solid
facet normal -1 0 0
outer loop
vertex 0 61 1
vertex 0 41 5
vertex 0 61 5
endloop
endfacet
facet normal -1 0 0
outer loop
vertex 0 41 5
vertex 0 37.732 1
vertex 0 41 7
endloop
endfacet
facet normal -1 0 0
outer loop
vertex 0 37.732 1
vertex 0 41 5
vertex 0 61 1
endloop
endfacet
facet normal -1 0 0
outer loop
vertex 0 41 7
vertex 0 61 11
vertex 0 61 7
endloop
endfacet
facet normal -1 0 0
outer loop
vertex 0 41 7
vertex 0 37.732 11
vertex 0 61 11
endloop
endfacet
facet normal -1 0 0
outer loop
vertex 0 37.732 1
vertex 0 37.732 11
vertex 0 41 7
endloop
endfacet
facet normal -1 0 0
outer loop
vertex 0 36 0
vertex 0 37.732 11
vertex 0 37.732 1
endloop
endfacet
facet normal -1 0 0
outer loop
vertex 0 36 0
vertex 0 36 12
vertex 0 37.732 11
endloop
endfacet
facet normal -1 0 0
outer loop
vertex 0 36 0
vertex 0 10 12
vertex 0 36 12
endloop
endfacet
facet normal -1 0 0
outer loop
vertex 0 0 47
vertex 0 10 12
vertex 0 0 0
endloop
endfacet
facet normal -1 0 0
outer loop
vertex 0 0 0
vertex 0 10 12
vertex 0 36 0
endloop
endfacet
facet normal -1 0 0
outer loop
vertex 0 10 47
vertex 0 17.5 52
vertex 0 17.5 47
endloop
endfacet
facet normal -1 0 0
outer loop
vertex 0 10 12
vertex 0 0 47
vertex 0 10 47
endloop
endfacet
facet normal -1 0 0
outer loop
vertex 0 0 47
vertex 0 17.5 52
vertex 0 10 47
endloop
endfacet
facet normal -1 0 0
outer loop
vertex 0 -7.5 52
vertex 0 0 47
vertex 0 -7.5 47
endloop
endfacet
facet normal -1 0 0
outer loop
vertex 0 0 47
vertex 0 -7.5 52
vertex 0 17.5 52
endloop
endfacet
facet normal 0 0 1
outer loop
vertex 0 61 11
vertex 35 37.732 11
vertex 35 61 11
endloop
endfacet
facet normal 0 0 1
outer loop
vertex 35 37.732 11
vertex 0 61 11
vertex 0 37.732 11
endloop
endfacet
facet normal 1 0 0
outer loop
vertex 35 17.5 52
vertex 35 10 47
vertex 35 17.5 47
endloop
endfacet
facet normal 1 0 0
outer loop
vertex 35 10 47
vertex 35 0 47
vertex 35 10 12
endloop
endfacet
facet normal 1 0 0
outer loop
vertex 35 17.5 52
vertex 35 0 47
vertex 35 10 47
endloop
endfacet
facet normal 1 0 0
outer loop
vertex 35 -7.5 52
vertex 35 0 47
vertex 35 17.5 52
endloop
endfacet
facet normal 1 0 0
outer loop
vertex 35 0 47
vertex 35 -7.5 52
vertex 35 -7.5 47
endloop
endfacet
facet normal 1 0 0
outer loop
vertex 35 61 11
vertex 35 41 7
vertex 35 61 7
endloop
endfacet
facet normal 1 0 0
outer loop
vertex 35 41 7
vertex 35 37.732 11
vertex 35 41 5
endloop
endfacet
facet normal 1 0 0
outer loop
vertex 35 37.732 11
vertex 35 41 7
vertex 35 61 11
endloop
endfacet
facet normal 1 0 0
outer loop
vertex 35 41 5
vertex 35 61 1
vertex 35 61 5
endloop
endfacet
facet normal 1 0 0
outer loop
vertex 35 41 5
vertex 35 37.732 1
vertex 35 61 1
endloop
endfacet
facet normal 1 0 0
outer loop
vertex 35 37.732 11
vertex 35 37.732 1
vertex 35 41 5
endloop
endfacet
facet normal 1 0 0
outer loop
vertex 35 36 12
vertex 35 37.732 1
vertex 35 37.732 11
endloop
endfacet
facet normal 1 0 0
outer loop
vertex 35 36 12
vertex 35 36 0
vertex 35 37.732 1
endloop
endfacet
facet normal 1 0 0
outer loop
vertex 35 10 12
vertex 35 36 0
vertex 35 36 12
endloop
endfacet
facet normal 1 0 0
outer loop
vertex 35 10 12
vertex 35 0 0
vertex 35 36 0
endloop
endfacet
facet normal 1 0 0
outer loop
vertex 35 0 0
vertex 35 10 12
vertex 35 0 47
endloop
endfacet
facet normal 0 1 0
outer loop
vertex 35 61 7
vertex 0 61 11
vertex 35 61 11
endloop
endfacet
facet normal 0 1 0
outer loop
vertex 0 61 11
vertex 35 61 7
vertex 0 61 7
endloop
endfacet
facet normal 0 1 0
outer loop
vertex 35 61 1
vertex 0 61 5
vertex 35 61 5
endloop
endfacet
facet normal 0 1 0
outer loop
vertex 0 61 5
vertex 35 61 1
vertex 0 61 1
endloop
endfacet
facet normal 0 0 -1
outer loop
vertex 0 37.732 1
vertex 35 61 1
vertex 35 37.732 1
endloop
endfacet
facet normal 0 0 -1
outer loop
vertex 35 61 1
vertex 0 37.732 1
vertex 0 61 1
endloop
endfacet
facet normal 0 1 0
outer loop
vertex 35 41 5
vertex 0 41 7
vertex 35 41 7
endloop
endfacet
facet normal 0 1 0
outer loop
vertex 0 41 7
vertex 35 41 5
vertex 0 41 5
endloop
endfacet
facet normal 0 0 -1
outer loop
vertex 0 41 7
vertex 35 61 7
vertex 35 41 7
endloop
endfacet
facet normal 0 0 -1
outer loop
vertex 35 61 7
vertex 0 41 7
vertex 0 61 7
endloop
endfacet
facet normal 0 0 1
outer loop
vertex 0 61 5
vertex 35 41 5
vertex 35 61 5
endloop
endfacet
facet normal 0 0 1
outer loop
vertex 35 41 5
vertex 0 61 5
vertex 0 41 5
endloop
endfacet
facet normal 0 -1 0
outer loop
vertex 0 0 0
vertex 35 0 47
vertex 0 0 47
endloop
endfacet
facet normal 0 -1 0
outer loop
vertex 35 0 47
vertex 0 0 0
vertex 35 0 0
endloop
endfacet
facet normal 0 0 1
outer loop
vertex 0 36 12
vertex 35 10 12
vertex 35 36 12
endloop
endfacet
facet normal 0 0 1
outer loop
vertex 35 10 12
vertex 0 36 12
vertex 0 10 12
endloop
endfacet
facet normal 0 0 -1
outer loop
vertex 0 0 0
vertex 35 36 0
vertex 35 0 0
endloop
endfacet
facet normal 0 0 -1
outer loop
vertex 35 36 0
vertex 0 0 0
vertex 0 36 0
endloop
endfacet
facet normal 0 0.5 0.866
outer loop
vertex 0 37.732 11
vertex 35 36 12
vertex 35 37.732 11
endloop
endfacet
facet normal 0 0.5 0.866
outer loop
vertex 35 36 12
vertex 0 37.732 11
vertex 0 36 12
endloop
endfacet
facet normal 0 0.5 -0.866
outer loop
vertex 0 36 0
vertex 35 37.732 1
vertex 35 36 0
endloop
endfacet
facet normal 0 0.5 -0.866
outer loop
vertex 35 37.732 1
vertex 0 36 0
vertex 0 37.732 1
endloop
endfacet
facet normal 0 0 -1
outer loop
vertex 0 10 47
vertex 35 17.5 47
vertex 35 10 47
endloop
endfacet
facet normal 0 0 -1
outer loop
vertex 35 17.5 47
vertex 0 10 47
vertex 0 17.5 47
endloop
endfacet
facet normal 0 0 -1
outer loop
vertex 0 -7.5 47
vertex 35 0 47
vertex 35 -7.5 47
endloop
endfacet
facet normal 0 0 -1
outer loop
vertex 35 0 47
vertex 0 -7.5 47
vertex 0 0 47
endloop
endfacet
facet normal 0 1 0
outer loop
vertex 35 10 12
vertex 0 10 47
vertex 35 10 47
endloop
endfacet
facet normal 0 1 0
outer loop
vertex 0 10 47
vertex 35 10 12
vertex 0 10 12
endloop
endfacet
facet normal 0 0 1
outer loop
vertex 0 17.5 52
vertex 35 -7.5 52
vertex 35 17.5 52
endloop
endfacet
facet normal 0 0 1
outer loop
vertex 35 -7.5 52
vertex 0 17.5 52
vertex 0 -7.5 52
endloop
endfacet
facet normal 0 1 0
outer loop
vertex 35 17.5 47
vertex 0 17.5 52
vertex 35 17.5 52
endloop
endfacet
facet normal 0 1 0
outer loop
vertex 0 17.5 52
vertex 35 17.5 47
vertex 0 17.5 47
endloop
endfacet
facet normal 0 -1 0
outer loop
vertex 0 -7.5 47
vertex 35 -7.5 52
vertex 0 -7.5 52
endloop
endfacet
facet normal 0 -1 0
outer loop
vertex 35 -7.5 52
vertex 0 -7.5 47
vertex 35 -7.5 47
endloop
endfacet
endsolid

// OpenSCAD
plate_height=2.0;

clamp_width=35;
clamp_depth=20;
clamp_height=4;

holder_depth=41;
holder_height=12;
holder_delta=5;

leg_height=35;
leg_depth=10;

table_depth=25;
table_height=5;


module clamp()
{
    difference()
    {
        cube([clamp_width, clamp_depth, 2*clamp_height+plate_height]);
        #translate([-100+clamp_width/2,0,clamp_height])
            cube([200,200,plate_height]);
    }

}

module eye_base()
{
    difference()
    {
        cylinder(d=52, h=6);
        translate([-26,26*cos(asin(41.5/52)),0])
            cube([52,52,6]); 
    }
    
}


module holder()
{
    translate([0,0,holder_height/2-clamp_height-plate_height/2])
    {
        translate([0,holder_depth,0])
            clamp();
        cube([clamp_width, holder_depth, 2*clamp_height+plate_height]);
    }
    cube([clamp_width, holder_depth-holder_delta, holder_height]);
    
    translate([0,holder_depth-holder_delta,holder_height])
        rotate(-90-30,[1,0,0])
            cube([clamp_width,3,5]);
    translate([0,holder_depth-holder_delta,0])
        rotate(+90-60,[1,0,0])
            cube([clamp_width,5,3]);
    
    translate([0,0,holder_height])
        cube([clamp_width, leg_depth, leg_height]);
    translate([0,-table_depth/2+leg_depth/2,holder_height+leg_height])
        cube([clamp_width, table_depth, table_height]);
}

holder();
